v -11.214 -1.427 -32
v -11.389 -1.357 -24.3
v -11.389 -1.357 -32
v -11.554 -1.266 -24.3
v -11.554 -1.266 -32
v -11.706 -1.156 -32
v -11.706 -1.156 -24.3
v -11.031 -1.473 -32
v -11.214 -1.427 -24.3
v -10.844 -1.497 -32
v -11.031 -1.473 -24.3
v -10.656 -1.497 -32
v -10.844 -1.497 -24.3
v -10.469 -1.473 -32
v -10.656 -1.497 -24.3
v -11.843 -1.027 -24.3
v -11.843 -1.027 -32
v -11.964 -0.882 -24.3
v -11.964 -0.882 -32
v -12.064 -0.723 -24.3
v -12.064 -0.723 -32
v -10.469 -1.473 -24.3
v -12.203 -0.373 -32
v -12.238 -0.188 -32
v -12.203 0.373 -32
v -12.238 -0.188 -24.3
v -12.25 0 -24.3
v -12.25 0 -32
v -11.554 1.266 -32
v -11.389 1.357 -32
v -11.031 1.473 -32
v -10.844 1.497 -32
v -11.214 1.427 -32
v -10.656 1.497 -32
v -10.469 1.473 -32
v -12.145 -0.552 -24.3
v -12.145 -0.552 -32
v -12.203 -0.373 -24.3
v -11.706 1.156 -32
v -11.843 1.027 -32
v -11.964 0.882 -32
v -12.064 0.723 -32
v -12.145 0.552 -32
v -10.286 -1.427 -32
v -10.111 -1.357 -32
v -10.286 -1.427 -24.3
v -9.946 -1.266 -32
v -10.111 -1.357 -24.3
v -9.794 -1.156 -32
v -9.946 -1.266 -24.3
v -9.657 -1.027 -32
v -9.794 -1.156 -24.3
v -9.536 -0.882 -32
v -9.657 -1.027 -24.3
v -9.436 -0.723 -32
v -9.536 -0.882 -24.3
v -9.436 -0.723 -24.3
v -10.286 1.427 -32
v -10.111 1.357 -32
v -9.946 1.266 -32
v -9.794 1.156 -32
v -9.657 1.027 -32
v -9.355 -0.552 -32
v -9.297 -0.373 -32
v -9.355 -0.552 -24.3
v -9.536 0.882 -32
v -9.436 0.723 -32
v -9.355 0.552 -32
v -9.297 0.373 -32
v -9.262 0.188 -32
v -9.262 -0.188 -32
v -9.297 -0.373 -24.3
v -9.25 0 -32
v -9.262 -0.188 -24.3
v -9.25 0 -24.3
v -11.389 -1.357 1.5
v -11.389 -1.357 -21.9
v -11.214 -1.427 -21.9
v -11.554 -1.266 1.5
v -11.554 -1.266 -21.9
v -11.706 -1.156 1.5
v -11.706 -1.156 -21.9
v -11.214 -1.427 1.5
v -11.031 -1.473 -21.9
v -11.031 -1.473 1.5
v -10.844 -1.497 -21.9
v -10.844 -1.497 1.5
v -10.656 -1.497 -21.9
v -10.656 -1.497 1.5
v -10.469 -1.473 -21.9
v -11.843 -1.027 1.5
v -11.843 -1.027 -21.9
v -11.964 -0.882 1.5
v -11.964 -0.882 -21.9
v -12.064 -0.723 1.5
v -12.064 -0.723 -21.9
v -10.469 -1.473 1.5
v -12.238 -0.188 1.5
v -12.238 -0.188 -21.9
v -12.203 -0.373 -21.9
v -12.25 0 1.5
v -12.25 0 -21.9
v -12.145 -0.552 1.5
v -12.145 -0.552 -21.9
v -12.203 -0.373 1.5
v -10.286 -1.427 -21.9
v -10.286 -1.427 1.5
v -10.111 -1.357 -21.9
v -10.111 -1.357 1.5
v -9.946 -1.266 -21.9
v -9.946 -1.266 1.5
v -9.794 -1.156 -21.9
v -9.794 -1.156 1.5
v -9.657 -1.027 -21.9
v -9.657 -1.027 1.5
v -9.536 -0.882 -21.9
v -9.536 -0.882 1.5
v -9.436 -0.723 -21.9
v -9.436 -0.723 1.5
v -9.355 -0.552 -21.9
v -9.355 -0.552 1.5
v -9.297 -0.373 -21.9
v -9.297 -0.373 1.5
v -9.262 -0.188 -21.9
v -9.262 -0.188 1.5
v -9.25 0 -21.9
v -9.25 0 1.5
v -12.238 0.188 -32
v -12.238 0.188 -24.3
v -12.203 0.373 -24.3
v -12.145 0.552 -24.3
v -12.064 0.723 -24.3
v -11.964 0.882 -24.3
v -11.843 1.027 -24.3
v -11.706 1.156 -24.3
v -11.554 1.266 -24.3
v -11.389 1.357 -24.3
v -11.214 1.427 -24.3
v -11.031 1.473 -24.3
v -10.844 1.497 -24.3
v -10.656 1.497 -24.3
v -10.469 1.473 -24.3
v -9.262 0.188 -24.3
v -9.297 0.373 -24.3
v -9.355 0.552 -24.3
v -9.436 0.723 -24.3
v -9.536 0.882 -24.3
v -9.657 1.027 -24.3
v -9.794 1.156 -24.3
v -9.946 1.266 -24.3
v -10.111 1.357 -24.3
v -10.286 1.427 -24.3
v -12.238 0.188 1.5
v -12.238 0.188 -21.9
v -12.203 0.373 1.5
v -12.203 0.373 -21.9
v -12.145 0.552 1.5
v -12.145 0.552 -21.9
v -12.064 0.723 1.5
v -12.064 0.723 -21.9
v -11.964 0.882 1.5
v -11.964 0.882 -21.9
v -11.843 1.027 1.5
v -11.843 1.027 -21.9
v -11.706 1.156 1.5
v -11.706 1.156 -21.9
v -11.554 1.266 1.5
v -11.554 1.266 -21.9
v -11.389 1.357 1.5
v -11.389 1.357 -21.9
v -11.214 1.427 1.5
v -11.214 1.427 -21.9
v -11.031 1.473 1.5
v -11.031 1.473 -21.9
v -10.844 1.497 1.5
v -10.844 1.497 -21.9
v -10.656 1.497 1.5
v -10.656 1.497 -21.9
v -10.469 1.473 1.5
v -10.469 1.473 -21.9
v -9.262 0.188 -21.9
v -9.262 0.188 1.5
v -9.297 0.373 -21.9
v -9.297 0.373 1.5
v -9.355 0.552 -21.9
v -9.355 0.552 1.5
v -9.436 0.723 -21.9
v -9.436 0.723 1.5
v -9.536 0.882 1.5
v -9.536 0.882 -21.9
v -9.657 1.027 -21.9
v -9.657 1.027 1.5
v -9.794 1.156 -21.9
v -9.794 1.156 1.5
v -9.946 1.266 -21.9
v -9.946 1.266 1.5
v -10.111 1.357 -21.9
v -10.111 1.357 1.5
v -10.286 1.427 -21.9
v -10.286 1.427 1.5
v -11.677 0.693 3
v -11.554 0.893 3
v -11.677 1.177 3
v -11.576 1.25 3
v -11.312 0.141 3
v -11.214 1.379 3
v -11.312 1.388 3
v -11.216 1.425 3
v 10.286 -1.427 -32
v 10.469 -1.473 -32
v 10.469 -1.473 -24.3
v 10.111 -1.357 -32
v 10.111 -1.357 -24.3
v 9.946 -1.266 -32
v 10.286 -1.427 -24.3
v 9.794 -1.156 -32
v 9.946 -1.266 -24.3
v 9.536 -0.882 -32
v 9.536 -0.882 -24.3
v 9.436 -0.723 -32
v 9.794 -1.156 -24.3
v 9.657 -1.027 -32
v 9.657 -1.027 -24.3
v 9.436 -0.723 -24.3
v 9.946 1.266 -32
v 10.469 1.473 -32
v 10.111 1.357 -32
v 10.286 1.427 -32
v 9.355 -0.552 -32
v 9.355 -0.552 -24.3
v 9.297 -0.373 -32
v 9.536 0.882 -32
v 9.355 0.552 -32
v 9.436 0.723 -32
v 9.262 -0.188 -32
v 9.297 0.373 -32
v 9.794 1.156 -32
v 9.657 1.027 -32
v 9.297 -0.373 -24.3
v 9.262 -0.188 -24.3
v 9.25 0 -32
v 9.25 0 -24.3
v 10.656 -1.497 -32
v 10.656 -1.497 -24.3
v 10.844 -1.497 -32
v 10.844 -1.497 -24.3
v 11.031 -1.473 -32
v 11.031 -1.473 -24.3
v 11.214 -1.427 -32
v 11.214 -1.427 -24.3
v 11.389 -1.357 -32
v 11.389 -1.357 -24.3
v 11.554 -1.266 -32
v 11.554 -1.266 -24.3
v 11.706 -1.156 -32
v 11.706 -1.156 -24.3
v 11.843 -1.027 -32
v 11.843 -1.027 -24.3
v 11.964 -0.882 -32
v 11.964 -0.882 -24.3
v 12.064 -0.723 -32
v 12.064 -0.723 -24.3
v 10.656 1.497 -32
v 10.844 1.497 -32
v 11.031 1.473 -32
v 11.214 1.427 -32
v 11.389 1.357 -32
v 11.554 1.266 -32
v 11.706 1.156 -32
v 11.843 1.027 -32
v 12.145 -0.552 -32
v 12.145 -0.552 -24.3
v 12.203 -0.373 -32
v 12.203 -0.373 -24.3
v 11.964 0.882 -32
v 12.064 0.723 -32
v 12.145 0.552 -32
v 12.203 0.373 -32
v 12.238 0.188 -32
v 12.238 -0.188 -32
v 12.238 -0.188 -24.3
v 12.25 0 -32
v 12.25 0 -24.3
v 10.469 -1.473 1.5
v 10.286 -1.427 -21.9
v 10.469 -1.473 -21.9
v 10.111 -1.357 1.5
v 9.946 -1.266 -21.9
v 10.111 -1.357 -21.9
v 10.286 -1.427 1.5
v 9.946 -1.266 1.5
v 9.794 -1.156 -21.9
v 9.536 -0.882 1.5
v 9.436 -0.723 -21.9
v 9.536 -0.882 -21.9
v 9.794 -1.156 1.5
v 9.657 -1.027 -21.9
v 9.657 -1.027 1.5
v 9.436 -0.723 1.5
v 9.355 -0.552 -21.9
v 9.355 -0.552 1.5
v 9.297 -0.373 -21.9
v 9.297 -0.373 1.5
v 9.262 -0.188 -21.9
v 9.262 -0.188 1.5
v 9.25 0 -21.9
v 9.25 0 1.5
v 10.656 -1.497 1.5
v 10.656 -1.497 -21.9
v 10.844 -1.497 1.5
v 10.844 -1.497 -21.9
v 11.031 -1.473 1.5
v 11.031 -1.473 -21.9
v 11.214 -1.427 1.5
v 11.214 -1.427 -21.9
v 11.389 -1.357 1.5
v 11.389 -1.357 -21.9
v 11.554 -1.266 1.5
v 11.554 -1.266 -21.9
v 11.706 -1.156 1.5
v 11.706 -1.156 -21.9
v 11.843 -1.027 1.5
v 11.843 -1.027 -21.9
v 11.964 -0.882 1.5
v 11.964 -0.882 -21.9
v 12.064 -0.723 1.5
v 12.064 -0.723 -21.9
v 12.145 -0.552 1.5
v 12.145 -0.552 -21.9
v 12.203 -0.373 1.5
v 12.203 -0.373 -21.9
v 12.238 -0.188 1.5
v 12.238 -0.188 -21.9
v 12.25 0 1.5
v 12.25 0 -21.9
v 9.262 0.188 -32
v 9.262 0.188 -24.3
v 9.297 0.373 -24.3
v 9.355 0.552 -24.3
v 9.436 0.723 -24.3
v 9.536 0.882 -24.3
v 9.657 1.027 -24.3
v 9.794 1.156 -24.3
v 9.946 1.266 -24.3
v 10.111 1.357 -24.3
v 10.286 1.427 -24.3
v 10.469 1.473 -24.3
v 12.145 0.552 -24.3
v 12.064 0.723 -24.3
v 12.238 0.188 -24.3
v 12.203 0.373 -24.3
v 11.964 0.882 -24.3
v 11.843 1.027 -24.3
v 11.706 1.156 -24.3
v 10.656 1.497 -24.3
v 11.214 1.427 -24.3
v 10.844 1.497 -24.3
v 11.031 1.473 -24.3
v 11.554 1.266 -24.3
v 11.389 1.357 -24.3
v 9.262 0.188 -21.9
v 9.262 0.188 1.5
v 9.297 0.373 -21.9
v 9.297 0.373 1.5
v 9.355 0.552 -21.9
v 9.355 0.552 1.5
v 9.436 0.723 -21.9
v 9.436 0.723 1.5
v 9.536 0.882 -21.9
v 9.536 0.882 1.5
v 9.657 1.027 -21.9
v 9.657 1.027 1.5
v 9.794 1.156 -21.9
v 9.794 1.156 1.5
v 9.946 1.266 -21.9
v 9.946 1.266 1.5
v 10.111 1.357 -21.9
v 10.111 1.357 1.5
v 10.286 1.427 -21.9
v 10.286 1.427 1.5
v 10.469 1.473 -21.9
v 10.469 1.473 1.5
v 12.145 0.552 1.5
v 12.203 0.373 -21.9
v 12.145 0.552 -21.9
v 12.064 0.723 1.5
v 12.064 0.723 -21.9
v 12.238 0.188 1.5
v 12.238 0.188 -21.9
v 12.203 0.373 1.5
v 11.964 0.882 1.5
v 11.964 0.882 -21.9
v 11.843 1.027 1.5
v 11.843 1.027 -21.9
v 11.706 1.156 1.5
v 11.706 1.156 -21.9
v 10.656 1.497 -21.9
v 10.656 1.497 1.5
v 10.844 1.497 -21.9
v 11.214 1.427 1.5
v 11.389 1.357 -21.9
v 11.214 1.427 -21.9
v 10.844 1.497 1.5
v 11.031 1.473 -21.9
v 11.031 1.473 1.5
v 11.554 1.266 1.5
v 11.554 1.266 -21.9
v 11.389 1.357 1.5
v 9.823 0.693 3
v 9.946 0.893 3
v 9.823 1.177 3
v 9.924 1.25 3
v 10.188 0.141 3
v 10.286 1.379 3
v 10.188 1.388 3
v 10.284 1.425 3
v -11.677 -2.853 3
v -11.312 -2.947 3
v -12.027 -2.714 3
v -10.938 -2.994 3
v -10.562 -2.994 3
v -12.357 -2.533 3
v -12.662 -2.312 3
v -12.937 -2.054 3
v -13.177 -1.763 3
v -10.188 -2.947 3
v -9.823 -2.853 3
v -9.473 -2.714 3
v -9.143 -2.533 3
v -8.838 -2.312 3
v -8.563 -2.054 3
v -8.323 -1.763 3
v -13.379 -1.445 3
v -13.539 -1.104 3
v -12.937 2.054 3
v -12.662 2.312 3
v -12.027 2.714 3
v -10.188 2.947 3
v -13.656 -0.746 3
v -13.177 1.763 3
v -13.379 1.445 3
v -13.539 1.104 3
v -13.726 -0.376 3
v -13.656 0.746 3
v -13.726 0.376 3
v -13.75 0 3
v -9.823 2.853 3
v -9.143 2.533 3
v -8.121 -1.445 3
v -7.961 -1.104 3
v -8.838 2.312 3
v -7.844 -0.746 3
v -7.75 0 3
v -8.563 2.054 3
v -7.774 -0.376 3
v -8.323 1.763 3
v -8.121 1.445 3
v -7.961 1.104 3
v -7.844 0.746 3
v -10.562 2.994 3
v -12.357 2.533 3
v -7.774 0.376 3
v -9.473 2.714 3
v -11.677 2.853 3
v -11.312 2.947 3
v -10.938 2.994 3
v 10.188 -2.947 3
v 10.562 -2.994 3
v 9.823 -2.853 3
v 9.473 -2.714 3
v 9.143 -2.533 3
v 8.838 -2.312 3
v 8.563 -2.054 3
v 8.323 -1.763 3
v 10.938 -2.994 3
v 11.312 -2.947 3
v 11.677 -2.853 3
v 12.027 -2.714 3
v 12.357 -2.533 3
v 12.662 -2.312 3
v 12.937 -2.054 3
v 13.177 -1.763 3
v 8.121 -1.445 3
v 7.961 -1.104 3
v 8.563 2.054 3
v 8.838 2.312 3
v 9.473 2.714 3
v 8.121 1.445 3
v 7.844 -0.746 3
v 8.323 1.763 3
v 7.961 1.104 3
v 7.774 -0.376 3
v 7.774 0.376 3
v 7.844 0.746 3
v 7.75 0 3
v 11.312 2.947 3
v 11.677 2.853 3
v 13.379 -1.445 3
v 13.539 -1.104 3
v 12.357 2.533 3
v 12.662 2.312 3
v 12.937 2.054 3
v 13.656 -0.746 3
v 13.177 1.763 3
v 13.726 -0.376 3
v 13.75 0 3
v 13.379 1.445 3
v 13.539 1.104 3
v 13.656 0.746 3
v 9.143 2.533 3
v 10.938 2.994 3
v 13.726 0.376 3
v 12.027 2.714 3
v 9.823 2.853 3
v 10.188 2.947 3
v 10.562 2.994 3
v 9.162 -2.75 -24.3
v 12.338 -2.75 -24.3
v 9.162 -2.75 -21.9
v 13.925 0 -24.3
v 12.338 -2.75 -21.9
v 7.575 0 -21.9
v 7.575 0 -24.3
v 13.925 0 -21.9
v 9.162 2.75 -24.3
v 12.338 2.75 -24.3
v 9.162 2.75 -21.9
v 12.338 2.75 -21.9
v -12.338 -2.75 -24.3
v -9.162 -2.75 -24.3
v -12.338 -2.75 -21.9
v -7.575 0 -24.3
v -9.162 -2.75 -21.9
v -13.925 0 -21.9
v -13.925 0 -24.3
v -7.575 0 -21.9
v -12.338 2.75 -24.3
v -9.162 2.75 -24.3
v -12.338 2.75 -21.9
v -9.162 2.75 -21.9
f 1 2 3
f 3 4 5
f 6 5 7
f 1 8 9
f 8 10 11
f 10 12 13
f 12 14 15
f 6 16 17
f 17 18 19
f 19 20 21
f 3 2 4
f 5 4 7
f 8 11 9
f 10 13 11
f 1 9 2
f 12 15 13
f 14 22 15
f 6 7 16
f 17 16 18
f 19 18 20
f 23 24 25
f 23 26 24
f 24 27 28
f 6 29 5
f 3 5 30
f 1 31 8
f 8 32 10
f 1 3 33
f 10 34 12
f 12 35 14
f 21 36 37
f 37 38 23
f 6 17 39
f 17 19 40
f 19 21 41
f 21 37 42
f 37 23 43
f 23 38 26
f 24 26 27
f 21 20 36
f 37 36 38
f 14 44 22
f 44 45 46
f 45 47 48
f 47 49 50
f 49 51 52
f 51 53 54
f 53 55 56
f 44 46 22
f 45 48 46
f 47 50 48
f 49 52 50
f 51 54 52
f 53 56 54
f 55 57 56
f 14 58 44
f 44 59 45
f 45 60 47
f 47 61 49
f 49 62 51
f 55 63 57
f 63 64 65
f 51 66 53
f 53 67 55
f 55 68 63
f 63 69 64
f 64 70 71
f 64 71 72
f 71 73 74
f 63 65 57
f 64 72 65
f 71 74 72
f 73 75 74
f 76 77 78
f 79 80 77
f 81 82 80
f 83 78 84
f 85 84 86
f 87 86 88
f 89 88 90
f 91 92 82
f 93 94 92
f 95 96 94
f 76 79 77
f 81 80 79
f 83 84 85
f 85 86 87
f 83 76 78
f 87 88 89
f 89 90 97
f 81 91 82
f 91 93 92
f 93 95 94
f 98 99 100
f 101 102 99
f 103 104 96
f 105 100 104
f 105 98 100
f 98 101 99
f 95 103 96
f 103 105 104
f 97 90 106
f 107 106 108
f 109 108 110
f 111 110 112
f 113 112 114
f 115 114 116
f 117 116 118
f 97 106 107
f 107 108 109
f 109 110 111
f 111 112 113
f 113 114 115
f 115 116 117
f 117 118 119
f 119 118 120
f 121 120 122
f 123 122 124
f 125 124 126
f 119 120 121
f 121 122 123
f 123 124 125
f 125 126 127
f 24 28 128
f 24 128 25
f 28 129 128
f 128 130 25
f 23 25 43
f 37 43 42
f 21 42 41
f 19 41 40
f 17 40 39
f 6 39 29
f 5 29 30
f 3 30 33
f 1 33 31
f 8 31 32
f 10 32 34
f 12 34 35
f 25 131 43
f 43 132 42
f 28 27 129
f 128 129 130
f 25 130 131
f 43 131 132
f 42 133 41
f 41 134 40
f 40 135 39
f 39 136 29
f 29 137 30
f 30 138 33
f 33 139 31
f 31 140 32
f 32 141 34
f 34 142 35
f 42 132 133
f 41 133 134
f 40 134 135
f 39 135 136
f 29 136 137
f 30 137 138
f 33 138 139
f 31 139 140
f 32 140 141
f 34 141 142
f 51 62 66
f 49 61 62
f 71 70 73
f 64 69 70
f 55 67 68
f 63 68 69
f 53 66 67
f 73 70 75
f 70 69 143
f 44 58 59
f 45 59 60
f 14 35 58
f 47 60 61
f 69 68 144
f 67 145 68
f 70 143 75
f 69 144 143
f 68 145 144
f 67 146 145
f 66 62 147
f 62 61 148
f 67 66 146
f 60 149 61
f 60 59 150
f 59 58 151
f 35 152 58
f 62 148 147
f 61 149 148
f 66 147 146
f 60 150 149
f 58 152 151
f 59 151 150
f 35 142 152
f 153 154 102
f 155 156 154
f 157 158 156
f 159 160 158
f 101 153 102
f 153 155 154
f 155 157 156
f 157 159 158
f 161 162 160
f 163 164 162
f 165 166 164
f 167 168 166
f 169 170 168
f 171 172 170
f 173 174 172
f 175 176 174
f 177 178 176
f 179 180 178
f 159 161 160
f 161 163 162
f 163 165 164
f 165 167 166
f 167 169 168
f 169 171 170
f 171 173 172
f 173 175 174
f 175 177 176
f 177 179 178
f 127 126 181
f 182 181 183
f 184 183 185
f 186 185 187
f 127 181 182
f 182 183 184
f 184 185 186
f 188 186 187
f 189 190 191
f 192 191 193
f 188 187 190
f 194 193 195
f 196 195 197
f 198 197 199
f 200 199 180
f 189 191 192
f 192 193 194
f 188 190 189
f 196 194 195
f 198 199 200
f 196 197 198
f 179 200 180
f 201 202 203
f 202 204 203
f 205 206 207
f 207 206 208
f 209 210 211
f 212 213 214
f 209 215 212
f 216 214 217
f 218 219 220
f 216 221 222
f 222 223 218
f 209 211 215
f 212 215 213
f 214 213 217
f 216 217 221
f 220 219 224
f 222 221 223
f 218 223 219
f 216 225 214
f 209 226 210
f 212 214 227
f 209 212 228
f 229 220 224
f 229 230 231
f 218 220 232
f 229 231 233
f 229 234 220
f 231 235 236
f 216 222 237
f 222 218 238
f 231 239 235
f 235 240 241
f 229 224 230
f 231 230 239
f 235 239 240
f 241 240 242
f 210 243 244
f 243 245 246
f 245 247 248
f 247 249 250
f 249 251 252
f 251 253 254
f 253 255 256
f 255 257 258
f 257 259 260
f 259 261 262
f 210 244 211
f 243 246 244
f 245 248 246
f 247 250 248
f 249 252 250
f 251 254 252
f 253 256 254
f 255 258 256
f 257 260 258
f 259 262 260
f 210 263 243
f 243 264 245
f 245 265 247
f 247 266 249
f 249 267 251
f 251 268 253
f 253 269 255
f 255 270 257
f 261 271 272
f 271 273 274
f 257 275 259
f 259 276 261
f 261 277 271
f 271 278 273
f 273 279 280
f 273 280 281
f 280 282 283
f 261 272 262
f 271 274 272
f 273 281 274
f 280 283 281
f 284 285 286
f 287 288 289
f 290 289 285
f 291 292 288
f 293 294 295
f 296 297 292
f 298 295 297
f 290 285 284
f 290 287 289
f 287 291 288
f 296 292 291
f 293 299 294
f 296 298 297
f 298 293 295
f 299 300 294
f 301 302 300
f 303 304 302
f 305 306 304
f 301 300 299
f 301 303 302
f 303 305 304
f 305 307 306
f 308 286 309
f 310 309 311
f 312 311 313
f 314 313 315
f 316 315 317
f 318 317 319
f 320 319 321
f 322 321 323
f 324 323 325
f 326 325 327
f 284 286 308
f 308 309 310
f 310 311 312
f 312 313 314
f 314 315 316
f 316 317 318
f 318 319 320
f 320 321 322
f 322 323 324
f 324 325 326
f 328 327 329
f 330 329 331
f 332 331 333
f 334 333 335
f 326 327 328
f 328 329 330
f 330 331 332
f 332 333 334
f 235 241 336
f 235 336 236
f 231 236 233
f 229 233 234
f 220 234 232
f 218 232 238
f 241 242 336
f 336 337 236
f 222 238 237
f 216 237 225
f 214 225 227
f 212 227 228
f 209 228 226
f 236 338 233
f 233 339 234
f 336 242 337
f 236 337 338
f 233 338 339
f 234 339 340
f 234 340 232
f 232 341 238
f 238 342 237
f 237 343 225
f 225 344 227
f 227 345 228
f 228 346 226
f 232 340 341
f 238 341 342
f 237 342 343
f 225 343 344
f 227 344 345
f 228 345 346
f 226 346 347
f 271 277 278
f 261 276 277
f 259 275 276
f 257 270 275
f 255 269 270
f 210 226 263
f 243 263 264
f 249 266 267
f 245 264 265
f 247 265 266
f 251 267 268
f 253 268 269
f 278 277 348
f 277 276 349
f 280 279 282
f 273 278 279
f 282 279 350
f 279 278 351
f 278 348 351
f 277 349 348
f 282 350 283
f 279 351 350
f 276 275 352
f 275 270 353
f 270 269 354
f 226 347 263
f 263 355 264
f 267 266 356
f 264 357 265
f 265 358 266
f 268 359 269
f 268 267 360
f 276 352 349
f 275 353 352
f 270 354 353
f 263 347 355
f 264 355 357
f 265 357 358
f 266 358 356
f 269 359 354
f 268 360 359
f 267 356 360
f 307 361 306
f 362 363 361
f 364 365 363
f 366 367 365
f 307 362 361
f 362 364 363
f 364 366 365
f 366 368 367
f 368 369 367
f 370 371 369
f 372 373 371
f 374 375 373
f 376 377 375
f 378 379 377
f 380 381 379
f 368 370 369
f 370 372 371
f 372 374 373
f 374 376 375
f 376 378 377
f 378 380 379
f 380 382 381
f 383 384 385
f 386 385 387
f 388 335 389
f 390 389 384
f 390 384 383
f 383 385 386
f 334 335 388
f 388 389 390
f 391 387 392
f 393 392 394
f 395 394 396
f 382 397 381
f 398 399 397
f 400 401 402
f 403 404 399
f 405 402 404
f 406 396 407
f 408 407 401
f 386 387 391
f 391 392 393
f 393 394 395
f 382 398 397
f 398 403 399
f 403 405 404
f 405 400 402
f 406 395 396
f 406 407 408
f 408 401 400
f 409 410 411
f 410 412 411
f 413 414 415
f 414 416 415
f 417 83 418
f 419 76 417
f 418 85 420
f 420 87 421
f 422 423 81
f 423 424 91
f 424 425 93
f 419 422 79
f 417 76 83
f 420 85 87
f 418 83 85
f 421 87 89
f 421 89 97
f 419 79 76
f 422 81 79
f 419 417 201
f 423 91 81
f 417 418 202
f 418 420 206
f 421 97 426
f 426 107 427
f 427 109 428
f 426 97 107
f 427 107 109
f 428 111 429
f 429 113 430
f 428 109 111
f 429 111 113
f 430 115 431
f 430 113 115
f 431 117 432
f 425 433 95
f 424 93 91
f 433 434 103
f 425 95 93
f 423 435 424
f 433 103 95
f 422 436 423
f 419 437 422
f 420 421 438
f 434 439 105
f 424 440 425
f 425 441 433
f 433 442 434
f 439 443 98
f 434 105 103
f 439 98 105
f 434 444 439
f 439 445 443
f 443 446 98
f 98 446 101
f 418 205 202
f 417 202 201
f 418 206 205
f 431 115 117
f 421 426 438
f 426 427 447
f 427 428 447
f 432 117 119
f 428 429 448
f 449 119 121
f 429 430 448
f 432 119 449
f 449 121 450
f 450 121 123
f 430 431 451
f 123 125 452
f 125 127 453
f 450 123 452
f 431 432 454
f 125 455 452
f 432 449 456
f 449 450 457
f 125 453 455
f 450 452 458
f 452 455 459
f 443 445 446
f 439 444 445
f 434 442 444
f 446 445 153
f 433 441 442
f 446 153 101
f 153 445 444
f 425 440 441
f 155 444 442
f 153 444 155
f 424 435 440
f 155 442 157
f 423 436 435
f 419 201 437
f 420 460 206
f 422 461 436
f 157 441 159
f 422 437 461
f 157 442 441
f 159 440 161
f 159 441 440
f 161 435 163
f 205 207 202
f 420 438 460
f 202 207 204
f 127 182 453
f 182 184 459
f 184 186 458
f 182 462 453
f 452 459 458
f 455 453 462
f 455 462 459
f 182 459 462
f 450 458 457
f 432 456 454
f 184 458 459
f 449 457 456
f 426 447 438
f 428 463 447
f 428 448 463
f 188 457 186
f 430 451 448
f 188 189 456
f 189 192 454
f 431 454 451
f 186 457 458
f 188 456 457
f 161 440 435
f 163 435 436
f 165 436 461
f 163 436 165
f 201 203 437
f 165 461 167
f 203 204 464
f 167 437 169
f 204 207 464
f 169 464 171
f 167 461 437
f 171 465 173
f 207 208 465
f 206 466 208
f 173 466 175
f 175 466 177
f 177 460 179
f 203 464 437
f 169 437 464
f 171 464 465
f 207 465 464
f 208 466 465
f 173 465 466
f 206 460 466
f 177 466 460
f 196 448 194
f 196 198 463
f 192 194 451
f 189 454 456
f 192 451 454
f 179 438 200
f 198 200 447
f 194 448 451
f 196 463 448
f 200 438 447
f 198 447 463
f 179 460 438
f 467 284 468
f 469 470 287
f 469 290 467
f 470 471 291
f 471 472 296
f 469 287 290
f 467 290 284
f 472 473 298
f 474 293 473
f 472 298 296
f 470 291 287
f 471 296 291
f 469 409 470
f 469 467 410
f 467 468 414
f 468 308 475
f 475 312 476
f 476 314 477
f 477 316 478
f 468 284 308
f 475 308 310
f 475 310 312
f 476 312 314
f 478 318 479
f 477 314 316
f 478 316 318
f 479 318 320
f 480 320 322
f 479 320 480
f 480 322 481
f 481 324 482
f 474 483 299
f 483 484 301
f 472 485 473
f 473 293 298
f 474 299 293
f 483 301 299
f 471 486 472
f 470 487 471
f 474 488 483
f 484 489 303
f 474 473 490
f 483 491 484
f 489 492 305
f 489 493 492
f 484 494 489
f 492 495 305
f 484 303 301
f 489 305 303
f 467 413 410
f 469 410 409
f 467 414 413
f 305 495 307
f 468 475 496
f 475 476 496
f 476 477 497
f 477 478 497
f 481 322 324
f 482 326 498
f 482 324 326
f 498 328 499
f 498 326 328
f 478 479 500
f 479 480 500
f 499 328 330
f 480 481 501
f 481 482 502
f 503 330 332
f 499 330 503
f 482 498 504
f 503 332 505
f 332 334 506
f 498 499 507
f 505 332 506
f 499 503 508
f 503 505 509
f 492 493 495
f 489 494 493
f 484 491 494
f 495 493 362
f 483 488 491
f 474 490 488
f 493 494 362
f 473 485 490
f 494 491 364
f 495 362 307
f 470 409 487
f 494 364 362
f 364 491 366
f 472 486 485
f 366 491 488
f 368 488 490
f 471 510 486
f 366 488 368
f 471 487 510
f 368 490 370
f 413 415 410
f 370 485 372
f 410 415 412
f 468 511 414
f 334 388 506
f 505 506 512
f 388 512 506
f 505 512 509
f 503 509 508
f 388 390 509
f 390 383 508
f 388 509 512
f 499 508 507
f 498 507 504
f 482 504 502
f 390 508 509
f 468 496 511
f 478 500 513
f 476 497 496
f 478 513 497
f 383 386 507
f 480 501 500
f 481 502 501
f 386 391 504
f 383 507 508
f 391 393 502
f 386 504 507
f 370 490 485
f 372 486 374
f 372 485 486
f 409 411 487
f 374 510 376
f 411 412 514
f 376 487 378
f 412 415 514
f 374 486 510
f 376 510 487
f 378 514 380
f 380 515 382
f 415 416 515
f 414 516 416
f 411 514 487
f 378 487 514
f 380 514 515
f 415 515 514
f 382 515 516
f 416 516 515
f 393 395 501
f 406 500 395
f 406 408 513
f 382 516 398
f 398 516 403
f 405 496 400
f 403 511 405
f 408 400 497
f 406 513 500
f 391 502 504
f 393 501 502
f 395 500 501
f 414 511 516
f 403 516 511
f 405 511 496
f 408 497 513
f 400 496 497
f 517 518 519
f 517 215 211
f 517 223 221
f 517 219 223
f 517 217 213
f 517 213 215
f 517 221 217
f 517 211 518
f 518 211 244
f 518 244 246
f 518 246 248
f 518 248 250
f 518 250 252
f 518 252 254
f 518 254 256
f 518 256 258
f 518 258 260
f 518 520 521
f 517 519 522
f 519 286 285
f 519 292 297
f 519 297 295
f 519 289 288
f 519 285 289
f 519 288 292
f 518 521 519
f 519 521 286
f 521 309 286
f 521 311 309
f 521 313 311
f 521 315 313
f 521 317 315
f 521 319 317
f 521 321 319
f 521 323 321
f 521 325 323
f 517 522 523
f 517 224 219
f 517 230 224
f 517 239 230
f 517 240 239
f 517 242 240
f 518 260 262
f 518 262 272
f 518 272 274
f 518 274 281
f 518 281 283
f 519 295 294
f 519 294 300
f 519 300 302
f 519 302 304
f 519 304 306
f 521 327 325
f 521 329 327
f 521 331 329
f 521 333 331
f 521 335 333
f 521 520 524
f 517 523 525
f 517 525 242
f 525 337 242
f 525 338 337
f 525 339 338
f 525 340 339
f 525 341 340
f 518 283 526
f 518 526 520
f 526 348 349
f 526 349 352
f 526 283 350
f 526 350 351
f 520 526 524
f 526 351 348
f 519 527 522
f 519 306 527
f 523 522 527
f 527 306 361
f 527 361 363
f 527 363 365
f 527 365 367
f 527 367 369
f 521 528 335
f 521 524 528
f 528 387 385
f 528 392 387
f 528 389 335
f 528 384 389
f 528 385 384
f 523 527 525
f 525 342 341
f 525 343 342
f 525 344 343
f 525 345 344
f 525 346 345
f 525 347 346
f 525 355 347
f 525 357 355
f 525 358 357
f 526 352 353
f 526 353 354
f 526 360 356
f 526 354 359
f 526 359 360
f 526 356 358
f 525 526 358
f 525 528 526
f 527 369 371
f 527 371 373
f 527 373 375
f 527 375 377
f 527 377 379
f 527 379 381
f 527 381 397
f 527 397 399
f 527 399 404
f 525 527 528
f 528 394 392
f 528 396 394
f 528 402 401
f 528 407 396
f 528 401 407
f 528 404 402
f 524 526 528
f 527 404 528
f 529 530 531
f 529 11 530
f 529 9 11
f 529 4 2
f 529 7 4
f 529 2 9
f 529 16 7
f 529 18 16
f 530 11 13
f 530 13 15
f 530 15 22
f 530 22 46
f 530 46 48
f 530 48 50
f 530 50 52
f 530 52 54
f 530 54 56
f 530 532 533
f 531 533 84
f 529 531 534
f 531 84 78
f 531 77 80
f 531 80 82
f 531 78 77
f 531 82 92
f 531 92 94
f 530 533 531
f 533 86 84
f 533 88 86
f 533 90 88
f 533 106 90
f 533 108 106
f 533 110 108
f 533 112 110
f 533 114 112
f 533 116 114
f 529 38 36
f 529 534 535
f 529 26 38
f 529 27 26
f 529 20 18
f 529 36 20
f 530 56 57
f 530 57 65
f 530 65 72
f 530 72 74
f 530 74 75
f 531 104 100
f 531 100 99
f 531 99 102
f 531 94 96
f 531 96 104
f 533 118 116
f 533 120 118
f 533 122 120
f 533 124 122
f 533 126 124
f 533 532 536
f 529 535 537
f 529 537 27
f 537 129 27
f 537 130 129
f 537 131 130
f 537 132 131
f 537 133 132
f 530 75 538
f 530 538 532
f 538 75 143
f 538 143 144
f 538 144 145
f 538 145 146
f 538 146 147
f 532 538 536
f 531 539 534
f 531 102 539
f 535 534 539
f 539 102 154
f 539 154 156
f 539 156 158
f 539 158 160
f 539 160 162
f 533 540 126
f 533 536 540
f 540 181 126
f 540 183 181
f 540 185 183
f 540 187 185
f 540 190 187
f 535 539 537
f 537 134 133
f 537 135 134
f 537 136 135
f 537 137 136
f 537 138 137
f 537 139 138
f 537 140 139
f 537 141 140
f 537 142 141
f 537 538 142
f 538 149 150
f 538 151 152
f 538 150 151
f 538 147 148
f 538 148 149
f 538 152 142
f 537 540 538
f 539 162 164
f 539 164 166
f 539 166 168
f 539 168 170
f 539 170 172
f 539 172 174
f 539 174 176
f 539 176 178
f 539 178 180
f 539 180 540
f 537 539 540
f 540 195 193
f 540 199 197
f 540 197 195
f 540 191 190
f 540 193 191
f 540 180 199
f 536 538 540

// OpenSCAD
$fn = 50;

difference() {
	union() {
		translate(v = [-10.75, 0, 3]) {
			rotate(a = [0, 0, 0]) {
				difference() {
					union() {
						translate(v = [0, 0, -35.0]) {
							cylinder(h = 35, r = 1.5);
						}
						translate(v = [0, 0, -1.5]) {
							cylinder(h = 1.5, r1 = 1.5, r2 = 3);
						}
					}
					union();
				}
			}
		}
		translate(v = [-10.75, 0, -24.3]) {
			rotate(a = [0, 0, 0]) {
				difference() {
					union() {
						linear_extrude(height = 2.4) {
							polygon(points = [[3.1754264805429417, 0.0], [1.5877132402714713, 2.75], [-1.5877132402714702, 2.7500000000000004], [-3.1754264805429417, 3.888775875324659e-16], [-1.5877132402714722, -2.7499999999999996], [1.5877132402714687, -2.7500000000000013]]);
						}
					}
					union();
				}
			}
		}
		translate(v = [10.75, 0, 3]) {
			rotate(a = [0, 0, 0]) {
				difference() {
					union() {
						translate(v = [0, 0, -35.0]) {
							cylinder(h = 35, r = 1.5);
						}
						translate(v = [0, 0, -1.5]) {
							cylinder(h = 1.5, r1 = 1.5, r2 = 3);
						}
					}
					union();
				}
			}
		}
		translate(v = [10.75, 0, -24.3]) {
			rotate(a = [0, 0, 0]) {
				difference() {
					union() {
						linear_extrude(height = 2.4) {
							polygon(points = [[3.1754264805429417, 0.0], [1.5877132402714713, 2.75], [-1.5877132402714702, 2.7500000000000004], [-3.1754264805429417, 3.888775875324659e-16], [-1.5877132402714722, -2.7499999999999996], [1.5877132402714687, -2.7500000000000013]]);
						}
					}
					union();
				}
			}
		}
	}
	union();
}
